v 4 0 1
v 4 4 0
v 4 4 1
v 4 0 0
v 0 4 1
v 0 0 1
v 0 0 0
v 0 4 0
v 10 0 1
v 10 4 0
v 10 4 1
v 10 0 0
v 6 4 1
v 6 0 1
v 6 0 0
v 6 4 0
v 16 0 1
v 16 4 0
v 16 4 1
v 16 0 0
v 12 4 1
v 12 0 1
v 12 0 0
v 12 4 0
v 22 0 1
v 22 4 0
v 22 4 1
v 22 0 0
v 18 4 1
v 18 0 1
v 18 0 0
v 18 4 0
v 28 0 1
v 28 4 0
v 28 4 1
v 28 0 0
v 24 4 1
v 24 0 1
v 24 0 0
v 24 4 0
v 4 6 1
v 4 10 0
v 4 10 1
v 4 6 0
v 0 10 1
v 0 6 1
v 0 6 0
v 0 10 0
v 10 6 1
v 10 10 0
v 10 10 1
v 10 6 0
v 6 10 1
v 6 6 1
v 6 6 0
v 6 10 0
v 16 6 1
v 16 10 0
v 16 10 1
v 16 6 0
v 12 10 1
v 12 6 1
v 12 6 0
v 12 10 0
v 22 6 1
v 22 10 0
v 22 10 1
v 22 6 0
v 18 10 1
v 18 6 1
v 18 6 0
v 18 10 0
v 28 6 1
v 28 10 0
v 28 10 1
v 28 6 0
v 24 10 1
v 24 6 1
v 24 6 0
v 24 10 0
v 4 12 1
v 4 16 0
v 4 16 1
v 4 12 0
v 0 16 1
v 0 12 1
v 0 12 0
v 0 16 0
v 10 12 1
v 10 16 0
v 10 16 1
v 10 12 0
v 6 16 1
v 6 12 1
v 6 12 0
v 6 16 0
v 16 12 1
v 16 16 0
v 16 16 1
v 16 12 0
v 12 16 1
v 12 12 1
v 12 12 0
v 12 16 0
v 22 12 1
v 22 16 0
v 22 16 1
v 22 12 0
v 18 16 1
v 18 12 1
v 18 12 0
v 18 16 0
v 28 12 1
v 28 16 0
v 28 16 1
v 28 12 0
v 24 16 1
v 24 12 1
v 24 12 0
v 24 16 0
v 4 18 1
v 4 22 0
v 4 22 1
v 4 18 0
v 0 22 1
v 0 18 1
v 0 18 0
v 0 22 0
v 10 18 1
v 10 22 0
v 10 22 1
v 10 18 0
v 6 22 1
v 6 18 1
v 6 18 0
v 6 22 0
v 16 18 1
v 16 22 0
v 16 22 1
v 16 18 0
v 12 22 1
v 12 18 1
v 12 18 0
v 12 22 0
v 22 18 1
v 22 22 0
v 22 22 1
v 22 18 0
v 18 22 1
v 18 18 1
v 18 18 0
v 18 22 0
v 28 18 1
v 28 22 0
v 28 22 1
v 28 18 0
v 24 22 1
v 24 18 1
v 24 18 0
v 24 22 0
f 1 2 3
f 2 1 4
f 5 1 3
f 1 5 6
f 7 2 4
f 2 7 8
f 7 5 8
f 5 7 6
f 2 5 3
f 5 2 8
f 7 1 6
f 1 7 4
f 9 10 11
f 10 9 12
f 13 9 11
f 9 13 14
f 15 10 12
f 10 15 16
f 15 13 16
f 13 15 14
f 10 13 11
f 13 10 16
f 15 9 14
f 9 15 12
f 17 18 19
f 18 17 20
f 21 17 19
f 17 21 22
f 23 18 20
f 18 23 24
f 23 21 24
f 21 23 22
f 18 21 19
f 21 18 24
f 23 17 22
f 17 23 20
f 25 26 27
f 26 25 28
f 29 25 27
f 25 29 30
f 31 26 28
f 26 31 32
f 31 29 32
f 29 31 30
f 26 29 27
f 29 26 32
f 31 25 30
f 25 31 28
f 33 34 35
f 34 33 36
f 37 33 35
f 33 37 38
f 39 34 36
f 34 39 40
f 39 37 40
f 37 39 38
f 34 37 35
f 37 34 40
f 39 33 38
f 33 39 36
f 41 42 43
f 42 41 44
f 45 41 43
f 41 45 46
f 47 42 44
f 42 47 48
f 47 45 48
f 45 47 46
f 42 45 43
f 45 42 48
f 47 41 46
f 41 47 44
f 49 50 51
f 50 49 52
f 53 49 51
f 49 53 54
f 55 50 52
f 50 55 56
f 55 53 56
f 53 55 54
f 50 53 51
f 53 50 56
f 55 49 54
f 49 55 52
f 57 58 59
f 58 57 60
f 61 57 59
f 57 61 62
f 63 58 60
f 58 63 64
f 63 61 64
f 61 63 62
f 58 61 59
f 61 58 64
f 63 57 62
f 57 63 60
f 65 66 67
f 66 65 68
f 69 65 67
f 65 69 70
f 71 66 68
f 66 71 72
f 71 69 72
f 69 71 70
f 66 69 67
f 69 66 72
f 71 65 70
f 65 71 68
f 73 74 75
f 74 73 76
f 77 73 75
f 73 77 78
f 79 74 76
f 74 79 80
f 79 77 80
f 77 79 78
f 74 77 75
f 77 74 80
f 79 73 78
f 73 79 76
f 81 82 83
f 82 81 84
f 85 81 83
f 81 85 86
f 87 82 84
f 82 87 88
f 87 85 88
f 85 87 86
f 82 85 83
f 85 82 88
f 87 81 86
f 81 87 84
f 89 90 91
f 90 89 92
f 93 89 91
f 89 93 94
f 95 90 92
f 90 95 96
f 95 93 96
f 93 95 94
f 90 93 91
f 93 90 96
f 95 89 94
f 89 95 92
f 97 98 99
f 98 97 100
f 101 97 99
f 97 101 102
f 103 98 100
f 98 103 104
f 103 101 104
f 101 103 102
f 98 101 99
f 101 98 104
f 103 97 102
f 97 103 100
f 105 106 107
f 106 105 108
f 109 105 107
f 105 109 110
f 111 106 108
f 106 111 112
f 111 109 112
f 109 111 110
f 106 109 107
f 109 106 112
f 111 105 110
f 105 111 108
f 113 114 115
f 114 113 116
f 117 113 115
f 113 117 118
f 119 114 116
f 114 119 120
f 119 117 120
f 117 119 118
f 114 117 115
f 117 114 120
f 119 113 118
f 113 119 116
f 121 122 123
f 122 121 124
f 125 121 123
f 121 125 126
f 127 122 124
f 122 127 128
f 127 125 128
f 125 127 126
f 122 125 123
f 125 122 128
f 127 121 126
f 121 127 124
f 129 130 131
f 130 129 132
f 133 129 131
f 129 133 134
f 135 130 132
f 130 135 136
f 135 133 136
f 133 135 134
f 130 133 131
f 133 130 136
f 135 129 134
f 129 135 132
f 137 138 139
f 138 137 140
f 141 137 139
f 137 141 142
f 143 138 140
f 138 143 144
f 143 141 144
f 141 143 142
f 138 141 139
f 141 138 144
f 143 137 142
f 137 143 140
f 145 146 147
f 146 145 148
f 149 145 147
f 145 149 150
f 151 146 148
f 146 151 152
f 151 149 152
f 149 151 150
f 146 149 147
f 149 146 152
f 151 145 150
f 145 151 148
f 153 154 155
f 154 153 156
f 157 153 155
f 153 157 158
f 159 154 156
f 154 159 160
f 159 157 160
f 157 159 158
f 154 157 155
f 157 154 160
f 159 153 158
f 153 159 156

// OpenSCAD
// 20 cubes of 4x4x1 mm
size = 4;
height = 1;
spacing = 2; // 2mm space between each part
columns = 5;

for (i = [0 : 19]) {
    x = (i % columns) * (size + spacing);
    y = floor(i / columns) * (size + spacing);
    
    translate([x, y, 0])
        cube([size, size, height]);
}
